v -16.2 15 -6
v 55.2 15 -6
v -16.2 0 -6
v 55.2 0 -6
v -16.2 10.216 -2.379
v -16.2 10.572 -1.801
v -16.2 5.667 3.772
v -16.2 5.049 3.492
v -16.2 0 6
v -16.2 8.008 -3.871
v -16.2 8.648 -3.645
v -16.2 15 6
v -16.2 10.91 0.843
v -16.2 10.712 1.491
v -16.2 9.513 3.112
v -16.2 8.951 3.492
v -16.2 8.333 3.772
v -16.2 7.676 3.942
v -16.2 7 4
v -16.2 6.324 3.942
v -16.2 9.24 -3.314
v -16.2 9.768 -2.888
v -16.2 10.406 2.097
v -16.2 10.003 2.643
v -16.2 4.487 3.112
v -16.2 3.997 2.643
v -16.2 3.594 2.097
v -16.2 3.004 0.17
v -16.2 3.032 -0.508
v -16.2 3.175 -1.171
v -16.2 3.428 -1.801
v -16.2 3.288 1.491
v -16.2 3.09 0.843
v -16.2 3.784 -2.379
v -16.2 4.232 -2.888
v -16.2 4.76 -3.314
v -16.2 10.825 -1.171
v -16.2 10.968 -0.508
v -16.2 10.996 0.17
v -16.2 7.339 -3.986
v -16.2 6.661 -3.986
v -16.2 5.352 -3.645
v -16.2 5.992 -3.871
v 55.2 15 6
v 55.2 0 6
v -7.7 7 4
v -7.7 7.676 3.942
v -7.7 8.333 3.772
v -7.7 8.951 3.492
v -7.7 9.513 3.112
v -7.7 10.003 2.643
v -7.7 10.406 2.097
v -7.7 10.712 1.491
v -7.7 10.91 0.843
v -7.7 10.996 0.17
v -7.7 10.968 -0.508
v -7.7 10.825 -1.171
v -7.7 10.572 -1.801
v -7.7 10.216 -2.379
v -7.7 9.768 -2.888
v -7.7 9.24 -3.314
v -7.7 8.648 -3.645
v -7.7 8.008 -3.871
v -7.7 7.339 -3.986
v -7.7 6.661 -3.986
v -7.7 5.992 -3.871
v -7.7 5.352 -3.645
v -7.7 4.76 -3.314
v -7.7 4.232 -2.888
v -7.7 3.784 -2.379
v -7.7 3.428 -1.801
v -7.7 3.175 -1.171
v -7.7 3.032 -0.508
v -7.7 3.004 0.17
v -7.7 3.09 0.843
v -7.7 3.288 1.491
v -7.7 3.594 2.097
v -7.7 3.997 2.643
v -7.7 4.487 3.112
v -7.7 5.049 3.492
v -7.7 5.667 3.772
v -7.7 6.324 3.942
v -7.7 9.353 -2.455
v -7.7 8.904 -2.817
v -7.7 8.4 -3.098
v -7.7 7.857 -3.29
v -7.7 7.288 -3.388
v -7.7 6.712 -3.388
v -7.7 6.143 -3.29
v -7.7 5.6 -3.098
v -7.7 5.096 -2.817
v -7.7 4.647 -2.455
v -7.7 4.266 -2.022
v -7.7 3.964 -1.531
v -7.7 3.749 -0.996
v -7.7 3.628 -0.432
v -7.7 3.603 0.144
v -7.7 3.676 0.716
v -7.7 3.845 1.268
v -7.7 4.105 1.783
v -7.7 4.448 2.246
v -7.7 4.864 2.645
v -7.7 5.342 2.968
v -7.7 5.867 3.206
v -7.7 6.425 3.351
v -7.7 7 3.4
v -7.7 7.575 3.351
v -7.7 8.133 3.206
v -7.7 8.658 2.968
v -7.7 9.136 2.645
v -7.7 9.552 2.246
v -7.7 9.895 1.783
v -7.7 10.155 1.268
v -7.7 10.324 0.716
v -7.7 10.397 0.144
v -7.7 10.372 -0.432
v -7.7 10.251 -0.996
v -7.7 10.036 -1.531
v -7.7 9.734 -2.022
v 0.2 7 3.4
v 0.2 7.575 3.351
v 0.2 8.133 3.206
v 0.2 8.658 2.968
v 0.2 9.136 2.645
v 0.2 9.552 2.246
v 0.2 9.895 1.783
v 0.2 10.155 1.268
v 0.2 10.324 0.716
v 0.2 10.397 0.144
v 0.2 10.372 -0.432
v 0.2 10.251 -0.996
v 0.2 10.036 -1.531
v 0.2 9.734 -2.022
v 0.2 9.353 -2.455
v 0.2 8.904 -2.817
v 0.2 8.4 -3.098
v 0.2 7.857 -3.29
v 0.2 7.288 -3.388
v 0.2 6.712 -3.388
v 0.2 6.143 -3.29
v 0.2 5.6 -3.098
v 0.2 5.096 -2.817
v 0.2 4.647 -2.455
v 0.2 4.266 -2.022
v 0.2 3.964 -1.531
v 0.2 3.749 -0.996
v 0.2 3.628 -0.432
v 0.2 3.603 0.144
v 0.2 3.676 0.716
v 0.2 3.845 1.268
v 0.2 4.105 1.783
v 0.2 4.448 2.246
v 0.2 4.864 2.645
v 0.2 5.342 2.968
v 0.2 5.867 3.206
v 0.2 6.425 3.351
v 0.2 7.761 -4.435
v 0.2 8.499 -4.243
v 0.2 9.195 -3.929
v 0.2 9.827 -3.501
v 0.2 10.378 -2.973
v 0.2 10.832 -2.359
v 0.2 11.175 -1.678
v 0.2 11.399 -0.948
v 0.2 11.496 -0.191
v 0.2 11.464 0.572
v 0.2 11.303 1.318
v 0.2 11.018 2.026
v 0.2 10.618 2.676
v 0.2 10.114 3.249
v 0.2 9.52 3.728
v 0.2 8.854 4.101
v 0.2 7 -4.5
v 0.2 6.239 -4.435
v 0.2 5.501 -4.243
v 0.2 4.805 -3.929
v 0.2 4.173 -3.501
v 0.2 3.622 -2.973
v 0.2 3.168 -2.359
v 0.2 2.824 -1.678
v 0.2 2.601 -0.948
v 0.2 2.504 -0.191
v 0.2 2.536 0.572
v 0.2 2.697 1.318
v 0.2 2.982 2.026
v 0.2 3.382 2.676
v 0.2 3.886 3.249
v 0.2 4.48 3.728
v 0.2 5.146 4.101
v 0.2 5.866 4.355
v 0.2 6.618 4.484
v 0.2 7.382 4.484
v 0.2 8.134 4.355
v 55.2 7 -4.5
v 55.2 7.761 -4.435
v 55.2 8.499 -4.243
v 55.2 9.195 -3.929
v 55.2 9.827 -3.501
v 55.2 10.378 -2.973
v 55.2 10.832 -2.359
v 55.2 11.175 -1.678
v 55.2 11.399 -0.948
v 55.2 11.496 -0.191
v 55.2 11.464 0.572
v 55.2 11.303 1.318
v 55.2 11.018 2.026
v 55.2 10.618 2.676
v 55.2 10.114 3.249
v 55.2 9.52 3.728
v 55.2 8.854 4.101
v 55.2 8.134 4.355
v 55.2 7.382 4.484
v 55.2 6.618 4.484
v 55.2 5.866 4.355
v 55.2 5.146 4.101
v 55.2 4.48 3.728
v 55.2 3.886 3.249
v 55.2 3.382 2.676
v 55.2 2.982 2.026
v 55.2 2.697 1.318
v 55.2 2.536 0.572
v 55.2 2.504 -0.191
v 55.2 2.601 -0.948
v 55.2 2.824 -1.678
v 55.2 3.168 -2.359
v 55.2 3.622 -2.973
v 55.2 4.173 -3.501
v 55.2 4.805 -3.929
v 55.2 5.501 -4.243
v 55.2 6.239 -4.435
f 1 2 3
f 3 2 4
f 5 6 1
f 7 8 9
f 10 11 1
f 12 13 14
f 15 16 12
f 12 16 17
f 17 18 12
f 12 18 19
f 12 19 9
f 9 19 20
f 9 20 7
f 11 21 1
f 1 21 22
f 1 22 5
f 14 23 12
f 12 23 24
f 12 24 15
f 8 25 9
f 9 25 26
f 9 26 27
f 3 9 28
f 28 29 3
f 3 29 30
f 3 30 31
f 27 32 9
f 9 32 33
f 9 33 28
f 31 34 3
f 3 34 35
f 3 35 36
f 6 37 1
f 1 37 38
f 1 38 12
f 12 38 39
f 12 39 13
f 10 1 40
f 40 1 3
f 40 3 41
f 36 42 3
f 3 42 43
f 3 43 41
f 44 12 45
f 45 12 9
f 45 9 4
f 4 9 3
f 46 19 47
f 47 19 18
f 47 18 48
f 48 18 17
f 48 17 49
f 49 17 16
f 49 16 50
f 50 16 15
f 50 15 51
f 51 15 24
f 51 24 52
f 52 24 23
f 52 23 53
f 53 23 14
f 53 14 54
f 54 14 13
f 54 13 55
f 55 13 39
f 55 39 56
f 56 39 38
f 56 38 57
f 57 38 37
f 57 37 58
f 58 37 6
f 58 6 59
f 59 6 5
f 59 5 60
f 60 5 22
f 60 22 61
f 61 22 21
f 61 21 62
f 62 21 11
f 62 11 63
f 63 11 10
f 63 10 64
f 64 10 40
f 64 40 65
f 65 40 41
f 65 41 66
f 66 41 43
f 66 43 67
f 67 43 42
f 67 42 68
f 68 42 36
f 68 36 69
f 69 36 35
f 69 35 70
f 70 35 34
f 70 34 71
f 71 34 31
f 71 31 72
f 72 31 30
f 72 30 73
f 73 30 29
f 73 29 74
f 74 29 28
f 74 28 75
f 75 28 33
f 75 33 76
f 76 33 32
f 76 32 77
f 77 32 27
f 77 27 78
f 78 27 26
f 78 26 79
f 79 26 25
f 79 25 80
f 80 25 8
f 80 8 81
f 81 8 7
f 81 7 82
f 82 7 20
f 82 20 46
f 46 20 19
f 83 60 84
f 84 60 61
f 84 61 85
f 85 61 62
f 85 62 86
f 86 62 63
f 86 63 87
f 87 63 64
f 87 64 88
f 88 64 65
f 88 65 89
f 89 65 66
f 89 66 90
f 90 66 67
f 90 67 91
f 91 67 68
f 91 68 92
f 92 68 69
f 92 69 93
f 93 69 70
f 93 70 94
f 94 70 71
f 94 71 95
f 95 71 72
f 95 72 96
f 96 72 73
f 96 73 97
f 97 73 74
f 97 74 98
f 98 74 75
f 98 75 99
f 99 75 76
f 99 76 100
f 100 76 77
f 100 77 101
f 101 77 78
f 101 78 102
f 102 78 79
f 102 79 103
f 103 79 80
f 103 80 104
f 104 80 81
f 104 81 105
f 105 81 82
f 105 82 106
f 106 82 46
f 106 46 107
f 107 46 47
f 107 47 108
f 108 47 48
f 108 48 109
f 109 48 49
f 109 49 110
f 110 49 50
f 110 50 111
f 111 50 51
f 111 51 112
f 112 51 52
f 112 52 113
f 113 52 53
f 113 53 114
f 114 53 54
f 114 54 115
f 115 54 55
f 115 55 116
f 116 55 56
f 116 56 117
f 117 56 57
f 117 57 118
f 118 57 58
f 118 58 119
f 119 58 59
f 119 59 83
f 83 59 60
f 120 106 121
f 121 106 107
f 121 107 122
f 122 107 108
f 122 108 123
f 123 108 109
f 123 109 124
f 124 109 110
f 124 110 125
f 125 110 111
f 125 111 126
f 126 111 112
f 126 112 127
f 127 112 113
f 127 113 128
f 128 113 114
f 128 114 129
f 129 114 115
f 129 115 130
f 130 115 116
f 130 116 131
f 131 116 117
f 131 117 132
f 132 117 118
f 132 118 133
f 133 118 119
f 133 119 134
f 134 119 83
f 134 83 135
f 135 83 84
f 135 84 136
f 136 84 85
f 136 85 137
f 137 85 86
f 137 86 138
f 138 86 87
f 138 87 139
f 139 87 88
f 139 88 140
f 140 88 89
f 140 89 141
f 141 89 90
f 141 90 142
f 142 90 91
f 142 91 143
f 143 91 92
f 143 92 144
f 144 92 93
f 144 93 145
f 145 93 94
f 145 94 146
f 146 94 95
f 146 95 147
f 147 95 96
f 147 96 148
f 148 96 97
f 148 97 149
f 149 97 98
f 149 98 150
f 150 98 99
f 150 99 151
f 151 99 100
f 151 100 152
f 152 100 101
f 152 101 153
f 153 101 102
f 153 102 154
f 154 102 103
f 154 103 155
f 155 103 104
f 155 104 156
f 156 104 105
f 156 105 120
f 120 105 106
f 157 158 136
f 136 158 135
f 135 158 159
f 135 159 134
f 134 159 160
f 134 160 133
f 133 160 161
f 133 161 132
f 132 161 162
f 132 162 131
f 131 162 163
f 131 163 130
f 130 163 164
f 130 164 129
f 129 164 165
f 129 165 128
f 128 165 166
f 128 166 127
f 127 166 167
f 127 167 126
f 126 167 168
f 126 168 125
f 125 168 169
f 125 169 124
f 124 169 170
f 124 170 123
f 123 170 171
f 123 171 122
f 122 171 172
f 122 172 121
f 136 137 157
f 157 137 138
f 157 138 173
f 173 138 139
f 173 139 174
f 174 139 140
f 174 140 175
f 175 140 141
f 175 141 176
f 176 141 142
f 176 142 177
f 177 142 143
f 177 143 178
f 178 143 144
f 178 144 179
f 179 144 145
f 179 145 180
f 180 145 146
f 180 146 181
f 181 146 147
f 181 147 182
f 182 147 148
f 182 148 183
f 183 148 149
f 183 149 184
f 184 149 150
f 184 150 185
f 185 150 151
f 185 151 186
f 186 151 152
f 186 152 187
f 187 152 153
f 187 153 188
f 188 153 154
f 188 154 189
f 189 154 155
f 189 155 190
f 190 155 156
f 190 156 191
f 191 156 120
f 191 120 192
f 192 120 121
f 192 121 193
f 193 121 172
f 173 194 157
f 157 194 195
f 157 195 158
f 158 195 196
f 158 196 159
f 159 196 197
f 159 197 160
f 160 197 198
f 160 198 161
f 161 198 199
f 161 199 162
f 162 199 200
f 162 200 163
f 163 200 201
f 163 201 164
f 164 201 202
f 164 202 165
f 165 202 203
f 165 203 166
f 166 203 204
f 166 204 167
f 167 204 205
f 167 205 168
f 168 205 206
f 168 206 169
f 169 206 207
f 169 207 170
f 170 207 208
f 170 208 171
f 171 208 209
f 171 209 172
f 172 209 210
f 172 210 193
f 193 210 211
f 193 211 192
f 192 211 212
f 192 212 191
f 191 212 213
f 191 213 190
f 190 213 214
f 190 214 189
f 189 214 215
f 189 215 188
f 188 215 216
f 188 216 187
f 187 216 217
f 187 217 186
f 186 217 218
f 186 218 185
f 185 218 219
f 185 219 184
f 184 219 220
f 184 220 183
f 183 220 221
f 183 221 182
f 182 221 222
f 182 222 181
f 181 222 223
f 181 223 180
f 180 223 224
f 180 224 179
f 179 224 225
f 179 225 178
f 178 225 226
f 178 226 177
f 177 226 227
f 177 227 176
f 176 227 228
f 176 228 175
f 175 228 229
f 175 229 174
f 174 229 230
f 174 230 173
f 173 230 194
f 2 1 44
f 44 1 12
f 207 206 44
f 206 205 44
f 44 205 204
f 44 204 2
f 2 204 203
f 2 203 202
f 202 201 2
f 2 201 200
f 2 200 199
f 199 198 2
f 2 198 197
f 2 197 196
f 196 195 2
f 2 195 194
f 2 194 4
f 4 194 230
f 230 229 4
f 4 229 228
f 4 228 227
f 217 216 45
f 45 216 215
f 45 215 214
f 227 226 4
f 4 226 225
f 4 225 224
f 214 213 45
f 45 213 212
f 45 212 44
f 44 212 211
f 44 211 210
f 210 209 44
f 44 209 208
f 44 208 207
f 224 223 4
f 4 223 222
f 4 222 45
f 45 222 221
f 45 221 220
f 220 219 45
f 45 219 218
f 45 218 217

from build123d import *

# Parameters (mm, degrees)
SKETCH_1_W          = 32.4
SKETCH_1_H          = 12
EXTRUDE_1_DEPTH     = 10
SKETCH_4_R          = 4
CUT_EXTRUDE_2_DEPTH = 8.5
SKETCH_7_R          = 3.4
CUT_EXTRUDE_3_DEPTH = 7.9
SKETCH_8_R          = 4.5
CUT_EXTRUDE_4_DEPTH = 16
SKETCH_9_W          = 32.4
SKETCH_9_H          = 2.645898034
EXTRUDE_2_DEPTH     = 5
EXTRUDE_3_DEPTH     = 5
EXTRUDE_4_DEPTH     = 5
SKETCH_12_W         = 12
SKETCH_12_H         = 5
EXTRUDE_5_DEPTH     = 32.4
SKETCH_13_R         = 4
CUT_EXTRUDE_5_DEPTH = 8.5
SKETCH_14_R         = 3.4
CUT_EXTRUDE_6_DEPTH = 7.9
SKETCH_15_R         = 4.5
CUT_EXTRUDE_8_DEPTH = 16
SKETCH_16_W         = 12
SKETCH_16_H         = 15
EXTRUDE_8_DEPTH     = 39
SKETCH_17_R         = 4.5
CUT_EXTRUDE_9_DEPTH = 39


with BuildPart() as part:
    # 草圖1 → 填料-伸長1 (new body)
    with BuildSketch(Plane(origin=(0, 0, 0), x_dir=(1, 0, 0), z_dir=(0, 1, 0))):
        Rectangle(SKETCH_1_W, SKETCH_1_H)
    extrude(amount=EXTRUDE_1_DEPTH)

    # 草圖4 → 除料-伸長2 (cut)
    with BuildSketch(Plane.ZY.offset(16.2)):
        with Locations((0, 7)):
            Circle(SKETCH_4_R)
    extrude(amount=-CUT_EXTRUDE_2_DEPTH, mode=Mode.SUBTRACT)

    # 草圖7 → 除料-伸長3 (cut)
    with BuildSketch(Plane.ZY.offset(7.7)):
        with Locations((0, 7)):
            Circle(SKETCH_7_R)
    extrude(amount=-CUT_EXTRUDE_3_DEPTH, mode=Mode.SUBTRACT)

    # 草圖8 → 除料-伸長4 (cut)
    with BuildSketch(Plane(origin=(16.2, 0, 0), x_dir=(0, 0, -1), z_dir=(1, 0, 0))):
        with Locations((0, 7)):
            Circle(SKETCH_8_R)
    extrude(amount=-CUT_EXTRUDE_4_DEPTH, mode=Mode.SUBTRACT)

    # 草圖9 → 填料-伸長2 (add)
    with BuildSketch(Plane(origin=(0, 10, 0), x_dir=(1, 0, 0), z_dir=(0, 1, 0))):
        with Locations((0, 4.677050983)):
            Rectangle(SKETCH_9_W, SKETCH_9_H)
    extrude(amount=EXTRUDE_2_DEPTH)

    # 草圖10 → 填料-伸長3 (add)
    with BuildSketch(Plane(origin=(0, 10, 0), x_dir=(1, 0, 0), z_dir=(0, 1, 0))):
        Polygon((-16.2, 3.372532617), (-16.2, 2.685476071), (-7.7, 2.645751311), (-7.7, 1.6), (0.2, 1.6), (0.2, 3.354101966), align=None)
    extrude(amount=EXTRUDE_3_DEPTH)

    # 草圖11 → 填料-伸長4 (add)
    with BuildSketch(Plane(origin=(0, 10, 0), x_dir=(1, 0, 0), z_dir=(0, 1, 0))):
        Polygon((-16.2, -2.660675208), (-16.2, -6), (16.2, -6), (16.2, -3.354101966), (0.2, -3.354101966), (0.2, -1.6), (-7.7, -1.6), (-7.7, -2.645751311), align=None)
    extrude(amount=EXTRUDE_4_DEPTH)

    # 草圖12 → 填料-伸長5 (add, through all)
    with BuildSketch(Plane.ZY.offset(16.2)):
        with Locations((0, 12.5)):
            Rectangle(SKETCH_12_W, SKETCH_12_H)
    extrude(amount=-EXTRUDE_5_DEPTH)

    # 草圖13 → 除料-伸長5 (cut)
    with BuildSketch(Plane.ZY.offset(16.2)):
        with Locations((0, 7)):
            Circle(SKETCH_13_R)
    extrude(amount=-CUT_EXTRUDE_5_DEPTH, mode=Mode.SUBTRACT)

    # 草圖14 → 除料-伸長6 (cut)
    with BuildSketch(Plane.ZY.offset(7.7)):
        with Locations((0, 7)):
            Circle(SKETCH_14_R)
    extrude(amount=-CUT_EXTRUDE_6_DEPTH, mode=Mode.SUBTRACT)

    # 草圖15 → 除料-伸長8 (cut)
    with BuildSketch(Plane(origin=(16.2, 0, 0), x_dir=(0, 0, -1), z_dir=(1, 0, 0))):
        with Locations((0, 7)):
            Circle(SKETCH_15_R)
    extrude(amount=-CUT_EXTRUDE_8_DEPTH, mode=Mode.SUBTRACT)

    # 草圖16 → 填料-伸長8 (add)
    with BuildSketch(Plane(origin=(16.2, 0, 0), x_dir=(0, 0, -1), z_dir=(1, 0, 0))):
        with Locations((0, 7.5)):
            Rectangle(SKETCH_16_W, SKETCH_16_H)
    extrude(amount=EXTRUDE_8_DEPTH)

    # 草圖17 → 除料-伸長9 (cut)
    with BuildSketch(Plane(origin=(55.2, 0, 0), x_dir=(0, 0, -1), z_dir=(1, 0, 0))):
        with Locations((0, 7)):
            Circle(SKETCH_17_R)
    extrude(amount=-CUT_EXTRUDE_9_DEPTH, mode=Mode.SUBTRACT)


solid = part.part
